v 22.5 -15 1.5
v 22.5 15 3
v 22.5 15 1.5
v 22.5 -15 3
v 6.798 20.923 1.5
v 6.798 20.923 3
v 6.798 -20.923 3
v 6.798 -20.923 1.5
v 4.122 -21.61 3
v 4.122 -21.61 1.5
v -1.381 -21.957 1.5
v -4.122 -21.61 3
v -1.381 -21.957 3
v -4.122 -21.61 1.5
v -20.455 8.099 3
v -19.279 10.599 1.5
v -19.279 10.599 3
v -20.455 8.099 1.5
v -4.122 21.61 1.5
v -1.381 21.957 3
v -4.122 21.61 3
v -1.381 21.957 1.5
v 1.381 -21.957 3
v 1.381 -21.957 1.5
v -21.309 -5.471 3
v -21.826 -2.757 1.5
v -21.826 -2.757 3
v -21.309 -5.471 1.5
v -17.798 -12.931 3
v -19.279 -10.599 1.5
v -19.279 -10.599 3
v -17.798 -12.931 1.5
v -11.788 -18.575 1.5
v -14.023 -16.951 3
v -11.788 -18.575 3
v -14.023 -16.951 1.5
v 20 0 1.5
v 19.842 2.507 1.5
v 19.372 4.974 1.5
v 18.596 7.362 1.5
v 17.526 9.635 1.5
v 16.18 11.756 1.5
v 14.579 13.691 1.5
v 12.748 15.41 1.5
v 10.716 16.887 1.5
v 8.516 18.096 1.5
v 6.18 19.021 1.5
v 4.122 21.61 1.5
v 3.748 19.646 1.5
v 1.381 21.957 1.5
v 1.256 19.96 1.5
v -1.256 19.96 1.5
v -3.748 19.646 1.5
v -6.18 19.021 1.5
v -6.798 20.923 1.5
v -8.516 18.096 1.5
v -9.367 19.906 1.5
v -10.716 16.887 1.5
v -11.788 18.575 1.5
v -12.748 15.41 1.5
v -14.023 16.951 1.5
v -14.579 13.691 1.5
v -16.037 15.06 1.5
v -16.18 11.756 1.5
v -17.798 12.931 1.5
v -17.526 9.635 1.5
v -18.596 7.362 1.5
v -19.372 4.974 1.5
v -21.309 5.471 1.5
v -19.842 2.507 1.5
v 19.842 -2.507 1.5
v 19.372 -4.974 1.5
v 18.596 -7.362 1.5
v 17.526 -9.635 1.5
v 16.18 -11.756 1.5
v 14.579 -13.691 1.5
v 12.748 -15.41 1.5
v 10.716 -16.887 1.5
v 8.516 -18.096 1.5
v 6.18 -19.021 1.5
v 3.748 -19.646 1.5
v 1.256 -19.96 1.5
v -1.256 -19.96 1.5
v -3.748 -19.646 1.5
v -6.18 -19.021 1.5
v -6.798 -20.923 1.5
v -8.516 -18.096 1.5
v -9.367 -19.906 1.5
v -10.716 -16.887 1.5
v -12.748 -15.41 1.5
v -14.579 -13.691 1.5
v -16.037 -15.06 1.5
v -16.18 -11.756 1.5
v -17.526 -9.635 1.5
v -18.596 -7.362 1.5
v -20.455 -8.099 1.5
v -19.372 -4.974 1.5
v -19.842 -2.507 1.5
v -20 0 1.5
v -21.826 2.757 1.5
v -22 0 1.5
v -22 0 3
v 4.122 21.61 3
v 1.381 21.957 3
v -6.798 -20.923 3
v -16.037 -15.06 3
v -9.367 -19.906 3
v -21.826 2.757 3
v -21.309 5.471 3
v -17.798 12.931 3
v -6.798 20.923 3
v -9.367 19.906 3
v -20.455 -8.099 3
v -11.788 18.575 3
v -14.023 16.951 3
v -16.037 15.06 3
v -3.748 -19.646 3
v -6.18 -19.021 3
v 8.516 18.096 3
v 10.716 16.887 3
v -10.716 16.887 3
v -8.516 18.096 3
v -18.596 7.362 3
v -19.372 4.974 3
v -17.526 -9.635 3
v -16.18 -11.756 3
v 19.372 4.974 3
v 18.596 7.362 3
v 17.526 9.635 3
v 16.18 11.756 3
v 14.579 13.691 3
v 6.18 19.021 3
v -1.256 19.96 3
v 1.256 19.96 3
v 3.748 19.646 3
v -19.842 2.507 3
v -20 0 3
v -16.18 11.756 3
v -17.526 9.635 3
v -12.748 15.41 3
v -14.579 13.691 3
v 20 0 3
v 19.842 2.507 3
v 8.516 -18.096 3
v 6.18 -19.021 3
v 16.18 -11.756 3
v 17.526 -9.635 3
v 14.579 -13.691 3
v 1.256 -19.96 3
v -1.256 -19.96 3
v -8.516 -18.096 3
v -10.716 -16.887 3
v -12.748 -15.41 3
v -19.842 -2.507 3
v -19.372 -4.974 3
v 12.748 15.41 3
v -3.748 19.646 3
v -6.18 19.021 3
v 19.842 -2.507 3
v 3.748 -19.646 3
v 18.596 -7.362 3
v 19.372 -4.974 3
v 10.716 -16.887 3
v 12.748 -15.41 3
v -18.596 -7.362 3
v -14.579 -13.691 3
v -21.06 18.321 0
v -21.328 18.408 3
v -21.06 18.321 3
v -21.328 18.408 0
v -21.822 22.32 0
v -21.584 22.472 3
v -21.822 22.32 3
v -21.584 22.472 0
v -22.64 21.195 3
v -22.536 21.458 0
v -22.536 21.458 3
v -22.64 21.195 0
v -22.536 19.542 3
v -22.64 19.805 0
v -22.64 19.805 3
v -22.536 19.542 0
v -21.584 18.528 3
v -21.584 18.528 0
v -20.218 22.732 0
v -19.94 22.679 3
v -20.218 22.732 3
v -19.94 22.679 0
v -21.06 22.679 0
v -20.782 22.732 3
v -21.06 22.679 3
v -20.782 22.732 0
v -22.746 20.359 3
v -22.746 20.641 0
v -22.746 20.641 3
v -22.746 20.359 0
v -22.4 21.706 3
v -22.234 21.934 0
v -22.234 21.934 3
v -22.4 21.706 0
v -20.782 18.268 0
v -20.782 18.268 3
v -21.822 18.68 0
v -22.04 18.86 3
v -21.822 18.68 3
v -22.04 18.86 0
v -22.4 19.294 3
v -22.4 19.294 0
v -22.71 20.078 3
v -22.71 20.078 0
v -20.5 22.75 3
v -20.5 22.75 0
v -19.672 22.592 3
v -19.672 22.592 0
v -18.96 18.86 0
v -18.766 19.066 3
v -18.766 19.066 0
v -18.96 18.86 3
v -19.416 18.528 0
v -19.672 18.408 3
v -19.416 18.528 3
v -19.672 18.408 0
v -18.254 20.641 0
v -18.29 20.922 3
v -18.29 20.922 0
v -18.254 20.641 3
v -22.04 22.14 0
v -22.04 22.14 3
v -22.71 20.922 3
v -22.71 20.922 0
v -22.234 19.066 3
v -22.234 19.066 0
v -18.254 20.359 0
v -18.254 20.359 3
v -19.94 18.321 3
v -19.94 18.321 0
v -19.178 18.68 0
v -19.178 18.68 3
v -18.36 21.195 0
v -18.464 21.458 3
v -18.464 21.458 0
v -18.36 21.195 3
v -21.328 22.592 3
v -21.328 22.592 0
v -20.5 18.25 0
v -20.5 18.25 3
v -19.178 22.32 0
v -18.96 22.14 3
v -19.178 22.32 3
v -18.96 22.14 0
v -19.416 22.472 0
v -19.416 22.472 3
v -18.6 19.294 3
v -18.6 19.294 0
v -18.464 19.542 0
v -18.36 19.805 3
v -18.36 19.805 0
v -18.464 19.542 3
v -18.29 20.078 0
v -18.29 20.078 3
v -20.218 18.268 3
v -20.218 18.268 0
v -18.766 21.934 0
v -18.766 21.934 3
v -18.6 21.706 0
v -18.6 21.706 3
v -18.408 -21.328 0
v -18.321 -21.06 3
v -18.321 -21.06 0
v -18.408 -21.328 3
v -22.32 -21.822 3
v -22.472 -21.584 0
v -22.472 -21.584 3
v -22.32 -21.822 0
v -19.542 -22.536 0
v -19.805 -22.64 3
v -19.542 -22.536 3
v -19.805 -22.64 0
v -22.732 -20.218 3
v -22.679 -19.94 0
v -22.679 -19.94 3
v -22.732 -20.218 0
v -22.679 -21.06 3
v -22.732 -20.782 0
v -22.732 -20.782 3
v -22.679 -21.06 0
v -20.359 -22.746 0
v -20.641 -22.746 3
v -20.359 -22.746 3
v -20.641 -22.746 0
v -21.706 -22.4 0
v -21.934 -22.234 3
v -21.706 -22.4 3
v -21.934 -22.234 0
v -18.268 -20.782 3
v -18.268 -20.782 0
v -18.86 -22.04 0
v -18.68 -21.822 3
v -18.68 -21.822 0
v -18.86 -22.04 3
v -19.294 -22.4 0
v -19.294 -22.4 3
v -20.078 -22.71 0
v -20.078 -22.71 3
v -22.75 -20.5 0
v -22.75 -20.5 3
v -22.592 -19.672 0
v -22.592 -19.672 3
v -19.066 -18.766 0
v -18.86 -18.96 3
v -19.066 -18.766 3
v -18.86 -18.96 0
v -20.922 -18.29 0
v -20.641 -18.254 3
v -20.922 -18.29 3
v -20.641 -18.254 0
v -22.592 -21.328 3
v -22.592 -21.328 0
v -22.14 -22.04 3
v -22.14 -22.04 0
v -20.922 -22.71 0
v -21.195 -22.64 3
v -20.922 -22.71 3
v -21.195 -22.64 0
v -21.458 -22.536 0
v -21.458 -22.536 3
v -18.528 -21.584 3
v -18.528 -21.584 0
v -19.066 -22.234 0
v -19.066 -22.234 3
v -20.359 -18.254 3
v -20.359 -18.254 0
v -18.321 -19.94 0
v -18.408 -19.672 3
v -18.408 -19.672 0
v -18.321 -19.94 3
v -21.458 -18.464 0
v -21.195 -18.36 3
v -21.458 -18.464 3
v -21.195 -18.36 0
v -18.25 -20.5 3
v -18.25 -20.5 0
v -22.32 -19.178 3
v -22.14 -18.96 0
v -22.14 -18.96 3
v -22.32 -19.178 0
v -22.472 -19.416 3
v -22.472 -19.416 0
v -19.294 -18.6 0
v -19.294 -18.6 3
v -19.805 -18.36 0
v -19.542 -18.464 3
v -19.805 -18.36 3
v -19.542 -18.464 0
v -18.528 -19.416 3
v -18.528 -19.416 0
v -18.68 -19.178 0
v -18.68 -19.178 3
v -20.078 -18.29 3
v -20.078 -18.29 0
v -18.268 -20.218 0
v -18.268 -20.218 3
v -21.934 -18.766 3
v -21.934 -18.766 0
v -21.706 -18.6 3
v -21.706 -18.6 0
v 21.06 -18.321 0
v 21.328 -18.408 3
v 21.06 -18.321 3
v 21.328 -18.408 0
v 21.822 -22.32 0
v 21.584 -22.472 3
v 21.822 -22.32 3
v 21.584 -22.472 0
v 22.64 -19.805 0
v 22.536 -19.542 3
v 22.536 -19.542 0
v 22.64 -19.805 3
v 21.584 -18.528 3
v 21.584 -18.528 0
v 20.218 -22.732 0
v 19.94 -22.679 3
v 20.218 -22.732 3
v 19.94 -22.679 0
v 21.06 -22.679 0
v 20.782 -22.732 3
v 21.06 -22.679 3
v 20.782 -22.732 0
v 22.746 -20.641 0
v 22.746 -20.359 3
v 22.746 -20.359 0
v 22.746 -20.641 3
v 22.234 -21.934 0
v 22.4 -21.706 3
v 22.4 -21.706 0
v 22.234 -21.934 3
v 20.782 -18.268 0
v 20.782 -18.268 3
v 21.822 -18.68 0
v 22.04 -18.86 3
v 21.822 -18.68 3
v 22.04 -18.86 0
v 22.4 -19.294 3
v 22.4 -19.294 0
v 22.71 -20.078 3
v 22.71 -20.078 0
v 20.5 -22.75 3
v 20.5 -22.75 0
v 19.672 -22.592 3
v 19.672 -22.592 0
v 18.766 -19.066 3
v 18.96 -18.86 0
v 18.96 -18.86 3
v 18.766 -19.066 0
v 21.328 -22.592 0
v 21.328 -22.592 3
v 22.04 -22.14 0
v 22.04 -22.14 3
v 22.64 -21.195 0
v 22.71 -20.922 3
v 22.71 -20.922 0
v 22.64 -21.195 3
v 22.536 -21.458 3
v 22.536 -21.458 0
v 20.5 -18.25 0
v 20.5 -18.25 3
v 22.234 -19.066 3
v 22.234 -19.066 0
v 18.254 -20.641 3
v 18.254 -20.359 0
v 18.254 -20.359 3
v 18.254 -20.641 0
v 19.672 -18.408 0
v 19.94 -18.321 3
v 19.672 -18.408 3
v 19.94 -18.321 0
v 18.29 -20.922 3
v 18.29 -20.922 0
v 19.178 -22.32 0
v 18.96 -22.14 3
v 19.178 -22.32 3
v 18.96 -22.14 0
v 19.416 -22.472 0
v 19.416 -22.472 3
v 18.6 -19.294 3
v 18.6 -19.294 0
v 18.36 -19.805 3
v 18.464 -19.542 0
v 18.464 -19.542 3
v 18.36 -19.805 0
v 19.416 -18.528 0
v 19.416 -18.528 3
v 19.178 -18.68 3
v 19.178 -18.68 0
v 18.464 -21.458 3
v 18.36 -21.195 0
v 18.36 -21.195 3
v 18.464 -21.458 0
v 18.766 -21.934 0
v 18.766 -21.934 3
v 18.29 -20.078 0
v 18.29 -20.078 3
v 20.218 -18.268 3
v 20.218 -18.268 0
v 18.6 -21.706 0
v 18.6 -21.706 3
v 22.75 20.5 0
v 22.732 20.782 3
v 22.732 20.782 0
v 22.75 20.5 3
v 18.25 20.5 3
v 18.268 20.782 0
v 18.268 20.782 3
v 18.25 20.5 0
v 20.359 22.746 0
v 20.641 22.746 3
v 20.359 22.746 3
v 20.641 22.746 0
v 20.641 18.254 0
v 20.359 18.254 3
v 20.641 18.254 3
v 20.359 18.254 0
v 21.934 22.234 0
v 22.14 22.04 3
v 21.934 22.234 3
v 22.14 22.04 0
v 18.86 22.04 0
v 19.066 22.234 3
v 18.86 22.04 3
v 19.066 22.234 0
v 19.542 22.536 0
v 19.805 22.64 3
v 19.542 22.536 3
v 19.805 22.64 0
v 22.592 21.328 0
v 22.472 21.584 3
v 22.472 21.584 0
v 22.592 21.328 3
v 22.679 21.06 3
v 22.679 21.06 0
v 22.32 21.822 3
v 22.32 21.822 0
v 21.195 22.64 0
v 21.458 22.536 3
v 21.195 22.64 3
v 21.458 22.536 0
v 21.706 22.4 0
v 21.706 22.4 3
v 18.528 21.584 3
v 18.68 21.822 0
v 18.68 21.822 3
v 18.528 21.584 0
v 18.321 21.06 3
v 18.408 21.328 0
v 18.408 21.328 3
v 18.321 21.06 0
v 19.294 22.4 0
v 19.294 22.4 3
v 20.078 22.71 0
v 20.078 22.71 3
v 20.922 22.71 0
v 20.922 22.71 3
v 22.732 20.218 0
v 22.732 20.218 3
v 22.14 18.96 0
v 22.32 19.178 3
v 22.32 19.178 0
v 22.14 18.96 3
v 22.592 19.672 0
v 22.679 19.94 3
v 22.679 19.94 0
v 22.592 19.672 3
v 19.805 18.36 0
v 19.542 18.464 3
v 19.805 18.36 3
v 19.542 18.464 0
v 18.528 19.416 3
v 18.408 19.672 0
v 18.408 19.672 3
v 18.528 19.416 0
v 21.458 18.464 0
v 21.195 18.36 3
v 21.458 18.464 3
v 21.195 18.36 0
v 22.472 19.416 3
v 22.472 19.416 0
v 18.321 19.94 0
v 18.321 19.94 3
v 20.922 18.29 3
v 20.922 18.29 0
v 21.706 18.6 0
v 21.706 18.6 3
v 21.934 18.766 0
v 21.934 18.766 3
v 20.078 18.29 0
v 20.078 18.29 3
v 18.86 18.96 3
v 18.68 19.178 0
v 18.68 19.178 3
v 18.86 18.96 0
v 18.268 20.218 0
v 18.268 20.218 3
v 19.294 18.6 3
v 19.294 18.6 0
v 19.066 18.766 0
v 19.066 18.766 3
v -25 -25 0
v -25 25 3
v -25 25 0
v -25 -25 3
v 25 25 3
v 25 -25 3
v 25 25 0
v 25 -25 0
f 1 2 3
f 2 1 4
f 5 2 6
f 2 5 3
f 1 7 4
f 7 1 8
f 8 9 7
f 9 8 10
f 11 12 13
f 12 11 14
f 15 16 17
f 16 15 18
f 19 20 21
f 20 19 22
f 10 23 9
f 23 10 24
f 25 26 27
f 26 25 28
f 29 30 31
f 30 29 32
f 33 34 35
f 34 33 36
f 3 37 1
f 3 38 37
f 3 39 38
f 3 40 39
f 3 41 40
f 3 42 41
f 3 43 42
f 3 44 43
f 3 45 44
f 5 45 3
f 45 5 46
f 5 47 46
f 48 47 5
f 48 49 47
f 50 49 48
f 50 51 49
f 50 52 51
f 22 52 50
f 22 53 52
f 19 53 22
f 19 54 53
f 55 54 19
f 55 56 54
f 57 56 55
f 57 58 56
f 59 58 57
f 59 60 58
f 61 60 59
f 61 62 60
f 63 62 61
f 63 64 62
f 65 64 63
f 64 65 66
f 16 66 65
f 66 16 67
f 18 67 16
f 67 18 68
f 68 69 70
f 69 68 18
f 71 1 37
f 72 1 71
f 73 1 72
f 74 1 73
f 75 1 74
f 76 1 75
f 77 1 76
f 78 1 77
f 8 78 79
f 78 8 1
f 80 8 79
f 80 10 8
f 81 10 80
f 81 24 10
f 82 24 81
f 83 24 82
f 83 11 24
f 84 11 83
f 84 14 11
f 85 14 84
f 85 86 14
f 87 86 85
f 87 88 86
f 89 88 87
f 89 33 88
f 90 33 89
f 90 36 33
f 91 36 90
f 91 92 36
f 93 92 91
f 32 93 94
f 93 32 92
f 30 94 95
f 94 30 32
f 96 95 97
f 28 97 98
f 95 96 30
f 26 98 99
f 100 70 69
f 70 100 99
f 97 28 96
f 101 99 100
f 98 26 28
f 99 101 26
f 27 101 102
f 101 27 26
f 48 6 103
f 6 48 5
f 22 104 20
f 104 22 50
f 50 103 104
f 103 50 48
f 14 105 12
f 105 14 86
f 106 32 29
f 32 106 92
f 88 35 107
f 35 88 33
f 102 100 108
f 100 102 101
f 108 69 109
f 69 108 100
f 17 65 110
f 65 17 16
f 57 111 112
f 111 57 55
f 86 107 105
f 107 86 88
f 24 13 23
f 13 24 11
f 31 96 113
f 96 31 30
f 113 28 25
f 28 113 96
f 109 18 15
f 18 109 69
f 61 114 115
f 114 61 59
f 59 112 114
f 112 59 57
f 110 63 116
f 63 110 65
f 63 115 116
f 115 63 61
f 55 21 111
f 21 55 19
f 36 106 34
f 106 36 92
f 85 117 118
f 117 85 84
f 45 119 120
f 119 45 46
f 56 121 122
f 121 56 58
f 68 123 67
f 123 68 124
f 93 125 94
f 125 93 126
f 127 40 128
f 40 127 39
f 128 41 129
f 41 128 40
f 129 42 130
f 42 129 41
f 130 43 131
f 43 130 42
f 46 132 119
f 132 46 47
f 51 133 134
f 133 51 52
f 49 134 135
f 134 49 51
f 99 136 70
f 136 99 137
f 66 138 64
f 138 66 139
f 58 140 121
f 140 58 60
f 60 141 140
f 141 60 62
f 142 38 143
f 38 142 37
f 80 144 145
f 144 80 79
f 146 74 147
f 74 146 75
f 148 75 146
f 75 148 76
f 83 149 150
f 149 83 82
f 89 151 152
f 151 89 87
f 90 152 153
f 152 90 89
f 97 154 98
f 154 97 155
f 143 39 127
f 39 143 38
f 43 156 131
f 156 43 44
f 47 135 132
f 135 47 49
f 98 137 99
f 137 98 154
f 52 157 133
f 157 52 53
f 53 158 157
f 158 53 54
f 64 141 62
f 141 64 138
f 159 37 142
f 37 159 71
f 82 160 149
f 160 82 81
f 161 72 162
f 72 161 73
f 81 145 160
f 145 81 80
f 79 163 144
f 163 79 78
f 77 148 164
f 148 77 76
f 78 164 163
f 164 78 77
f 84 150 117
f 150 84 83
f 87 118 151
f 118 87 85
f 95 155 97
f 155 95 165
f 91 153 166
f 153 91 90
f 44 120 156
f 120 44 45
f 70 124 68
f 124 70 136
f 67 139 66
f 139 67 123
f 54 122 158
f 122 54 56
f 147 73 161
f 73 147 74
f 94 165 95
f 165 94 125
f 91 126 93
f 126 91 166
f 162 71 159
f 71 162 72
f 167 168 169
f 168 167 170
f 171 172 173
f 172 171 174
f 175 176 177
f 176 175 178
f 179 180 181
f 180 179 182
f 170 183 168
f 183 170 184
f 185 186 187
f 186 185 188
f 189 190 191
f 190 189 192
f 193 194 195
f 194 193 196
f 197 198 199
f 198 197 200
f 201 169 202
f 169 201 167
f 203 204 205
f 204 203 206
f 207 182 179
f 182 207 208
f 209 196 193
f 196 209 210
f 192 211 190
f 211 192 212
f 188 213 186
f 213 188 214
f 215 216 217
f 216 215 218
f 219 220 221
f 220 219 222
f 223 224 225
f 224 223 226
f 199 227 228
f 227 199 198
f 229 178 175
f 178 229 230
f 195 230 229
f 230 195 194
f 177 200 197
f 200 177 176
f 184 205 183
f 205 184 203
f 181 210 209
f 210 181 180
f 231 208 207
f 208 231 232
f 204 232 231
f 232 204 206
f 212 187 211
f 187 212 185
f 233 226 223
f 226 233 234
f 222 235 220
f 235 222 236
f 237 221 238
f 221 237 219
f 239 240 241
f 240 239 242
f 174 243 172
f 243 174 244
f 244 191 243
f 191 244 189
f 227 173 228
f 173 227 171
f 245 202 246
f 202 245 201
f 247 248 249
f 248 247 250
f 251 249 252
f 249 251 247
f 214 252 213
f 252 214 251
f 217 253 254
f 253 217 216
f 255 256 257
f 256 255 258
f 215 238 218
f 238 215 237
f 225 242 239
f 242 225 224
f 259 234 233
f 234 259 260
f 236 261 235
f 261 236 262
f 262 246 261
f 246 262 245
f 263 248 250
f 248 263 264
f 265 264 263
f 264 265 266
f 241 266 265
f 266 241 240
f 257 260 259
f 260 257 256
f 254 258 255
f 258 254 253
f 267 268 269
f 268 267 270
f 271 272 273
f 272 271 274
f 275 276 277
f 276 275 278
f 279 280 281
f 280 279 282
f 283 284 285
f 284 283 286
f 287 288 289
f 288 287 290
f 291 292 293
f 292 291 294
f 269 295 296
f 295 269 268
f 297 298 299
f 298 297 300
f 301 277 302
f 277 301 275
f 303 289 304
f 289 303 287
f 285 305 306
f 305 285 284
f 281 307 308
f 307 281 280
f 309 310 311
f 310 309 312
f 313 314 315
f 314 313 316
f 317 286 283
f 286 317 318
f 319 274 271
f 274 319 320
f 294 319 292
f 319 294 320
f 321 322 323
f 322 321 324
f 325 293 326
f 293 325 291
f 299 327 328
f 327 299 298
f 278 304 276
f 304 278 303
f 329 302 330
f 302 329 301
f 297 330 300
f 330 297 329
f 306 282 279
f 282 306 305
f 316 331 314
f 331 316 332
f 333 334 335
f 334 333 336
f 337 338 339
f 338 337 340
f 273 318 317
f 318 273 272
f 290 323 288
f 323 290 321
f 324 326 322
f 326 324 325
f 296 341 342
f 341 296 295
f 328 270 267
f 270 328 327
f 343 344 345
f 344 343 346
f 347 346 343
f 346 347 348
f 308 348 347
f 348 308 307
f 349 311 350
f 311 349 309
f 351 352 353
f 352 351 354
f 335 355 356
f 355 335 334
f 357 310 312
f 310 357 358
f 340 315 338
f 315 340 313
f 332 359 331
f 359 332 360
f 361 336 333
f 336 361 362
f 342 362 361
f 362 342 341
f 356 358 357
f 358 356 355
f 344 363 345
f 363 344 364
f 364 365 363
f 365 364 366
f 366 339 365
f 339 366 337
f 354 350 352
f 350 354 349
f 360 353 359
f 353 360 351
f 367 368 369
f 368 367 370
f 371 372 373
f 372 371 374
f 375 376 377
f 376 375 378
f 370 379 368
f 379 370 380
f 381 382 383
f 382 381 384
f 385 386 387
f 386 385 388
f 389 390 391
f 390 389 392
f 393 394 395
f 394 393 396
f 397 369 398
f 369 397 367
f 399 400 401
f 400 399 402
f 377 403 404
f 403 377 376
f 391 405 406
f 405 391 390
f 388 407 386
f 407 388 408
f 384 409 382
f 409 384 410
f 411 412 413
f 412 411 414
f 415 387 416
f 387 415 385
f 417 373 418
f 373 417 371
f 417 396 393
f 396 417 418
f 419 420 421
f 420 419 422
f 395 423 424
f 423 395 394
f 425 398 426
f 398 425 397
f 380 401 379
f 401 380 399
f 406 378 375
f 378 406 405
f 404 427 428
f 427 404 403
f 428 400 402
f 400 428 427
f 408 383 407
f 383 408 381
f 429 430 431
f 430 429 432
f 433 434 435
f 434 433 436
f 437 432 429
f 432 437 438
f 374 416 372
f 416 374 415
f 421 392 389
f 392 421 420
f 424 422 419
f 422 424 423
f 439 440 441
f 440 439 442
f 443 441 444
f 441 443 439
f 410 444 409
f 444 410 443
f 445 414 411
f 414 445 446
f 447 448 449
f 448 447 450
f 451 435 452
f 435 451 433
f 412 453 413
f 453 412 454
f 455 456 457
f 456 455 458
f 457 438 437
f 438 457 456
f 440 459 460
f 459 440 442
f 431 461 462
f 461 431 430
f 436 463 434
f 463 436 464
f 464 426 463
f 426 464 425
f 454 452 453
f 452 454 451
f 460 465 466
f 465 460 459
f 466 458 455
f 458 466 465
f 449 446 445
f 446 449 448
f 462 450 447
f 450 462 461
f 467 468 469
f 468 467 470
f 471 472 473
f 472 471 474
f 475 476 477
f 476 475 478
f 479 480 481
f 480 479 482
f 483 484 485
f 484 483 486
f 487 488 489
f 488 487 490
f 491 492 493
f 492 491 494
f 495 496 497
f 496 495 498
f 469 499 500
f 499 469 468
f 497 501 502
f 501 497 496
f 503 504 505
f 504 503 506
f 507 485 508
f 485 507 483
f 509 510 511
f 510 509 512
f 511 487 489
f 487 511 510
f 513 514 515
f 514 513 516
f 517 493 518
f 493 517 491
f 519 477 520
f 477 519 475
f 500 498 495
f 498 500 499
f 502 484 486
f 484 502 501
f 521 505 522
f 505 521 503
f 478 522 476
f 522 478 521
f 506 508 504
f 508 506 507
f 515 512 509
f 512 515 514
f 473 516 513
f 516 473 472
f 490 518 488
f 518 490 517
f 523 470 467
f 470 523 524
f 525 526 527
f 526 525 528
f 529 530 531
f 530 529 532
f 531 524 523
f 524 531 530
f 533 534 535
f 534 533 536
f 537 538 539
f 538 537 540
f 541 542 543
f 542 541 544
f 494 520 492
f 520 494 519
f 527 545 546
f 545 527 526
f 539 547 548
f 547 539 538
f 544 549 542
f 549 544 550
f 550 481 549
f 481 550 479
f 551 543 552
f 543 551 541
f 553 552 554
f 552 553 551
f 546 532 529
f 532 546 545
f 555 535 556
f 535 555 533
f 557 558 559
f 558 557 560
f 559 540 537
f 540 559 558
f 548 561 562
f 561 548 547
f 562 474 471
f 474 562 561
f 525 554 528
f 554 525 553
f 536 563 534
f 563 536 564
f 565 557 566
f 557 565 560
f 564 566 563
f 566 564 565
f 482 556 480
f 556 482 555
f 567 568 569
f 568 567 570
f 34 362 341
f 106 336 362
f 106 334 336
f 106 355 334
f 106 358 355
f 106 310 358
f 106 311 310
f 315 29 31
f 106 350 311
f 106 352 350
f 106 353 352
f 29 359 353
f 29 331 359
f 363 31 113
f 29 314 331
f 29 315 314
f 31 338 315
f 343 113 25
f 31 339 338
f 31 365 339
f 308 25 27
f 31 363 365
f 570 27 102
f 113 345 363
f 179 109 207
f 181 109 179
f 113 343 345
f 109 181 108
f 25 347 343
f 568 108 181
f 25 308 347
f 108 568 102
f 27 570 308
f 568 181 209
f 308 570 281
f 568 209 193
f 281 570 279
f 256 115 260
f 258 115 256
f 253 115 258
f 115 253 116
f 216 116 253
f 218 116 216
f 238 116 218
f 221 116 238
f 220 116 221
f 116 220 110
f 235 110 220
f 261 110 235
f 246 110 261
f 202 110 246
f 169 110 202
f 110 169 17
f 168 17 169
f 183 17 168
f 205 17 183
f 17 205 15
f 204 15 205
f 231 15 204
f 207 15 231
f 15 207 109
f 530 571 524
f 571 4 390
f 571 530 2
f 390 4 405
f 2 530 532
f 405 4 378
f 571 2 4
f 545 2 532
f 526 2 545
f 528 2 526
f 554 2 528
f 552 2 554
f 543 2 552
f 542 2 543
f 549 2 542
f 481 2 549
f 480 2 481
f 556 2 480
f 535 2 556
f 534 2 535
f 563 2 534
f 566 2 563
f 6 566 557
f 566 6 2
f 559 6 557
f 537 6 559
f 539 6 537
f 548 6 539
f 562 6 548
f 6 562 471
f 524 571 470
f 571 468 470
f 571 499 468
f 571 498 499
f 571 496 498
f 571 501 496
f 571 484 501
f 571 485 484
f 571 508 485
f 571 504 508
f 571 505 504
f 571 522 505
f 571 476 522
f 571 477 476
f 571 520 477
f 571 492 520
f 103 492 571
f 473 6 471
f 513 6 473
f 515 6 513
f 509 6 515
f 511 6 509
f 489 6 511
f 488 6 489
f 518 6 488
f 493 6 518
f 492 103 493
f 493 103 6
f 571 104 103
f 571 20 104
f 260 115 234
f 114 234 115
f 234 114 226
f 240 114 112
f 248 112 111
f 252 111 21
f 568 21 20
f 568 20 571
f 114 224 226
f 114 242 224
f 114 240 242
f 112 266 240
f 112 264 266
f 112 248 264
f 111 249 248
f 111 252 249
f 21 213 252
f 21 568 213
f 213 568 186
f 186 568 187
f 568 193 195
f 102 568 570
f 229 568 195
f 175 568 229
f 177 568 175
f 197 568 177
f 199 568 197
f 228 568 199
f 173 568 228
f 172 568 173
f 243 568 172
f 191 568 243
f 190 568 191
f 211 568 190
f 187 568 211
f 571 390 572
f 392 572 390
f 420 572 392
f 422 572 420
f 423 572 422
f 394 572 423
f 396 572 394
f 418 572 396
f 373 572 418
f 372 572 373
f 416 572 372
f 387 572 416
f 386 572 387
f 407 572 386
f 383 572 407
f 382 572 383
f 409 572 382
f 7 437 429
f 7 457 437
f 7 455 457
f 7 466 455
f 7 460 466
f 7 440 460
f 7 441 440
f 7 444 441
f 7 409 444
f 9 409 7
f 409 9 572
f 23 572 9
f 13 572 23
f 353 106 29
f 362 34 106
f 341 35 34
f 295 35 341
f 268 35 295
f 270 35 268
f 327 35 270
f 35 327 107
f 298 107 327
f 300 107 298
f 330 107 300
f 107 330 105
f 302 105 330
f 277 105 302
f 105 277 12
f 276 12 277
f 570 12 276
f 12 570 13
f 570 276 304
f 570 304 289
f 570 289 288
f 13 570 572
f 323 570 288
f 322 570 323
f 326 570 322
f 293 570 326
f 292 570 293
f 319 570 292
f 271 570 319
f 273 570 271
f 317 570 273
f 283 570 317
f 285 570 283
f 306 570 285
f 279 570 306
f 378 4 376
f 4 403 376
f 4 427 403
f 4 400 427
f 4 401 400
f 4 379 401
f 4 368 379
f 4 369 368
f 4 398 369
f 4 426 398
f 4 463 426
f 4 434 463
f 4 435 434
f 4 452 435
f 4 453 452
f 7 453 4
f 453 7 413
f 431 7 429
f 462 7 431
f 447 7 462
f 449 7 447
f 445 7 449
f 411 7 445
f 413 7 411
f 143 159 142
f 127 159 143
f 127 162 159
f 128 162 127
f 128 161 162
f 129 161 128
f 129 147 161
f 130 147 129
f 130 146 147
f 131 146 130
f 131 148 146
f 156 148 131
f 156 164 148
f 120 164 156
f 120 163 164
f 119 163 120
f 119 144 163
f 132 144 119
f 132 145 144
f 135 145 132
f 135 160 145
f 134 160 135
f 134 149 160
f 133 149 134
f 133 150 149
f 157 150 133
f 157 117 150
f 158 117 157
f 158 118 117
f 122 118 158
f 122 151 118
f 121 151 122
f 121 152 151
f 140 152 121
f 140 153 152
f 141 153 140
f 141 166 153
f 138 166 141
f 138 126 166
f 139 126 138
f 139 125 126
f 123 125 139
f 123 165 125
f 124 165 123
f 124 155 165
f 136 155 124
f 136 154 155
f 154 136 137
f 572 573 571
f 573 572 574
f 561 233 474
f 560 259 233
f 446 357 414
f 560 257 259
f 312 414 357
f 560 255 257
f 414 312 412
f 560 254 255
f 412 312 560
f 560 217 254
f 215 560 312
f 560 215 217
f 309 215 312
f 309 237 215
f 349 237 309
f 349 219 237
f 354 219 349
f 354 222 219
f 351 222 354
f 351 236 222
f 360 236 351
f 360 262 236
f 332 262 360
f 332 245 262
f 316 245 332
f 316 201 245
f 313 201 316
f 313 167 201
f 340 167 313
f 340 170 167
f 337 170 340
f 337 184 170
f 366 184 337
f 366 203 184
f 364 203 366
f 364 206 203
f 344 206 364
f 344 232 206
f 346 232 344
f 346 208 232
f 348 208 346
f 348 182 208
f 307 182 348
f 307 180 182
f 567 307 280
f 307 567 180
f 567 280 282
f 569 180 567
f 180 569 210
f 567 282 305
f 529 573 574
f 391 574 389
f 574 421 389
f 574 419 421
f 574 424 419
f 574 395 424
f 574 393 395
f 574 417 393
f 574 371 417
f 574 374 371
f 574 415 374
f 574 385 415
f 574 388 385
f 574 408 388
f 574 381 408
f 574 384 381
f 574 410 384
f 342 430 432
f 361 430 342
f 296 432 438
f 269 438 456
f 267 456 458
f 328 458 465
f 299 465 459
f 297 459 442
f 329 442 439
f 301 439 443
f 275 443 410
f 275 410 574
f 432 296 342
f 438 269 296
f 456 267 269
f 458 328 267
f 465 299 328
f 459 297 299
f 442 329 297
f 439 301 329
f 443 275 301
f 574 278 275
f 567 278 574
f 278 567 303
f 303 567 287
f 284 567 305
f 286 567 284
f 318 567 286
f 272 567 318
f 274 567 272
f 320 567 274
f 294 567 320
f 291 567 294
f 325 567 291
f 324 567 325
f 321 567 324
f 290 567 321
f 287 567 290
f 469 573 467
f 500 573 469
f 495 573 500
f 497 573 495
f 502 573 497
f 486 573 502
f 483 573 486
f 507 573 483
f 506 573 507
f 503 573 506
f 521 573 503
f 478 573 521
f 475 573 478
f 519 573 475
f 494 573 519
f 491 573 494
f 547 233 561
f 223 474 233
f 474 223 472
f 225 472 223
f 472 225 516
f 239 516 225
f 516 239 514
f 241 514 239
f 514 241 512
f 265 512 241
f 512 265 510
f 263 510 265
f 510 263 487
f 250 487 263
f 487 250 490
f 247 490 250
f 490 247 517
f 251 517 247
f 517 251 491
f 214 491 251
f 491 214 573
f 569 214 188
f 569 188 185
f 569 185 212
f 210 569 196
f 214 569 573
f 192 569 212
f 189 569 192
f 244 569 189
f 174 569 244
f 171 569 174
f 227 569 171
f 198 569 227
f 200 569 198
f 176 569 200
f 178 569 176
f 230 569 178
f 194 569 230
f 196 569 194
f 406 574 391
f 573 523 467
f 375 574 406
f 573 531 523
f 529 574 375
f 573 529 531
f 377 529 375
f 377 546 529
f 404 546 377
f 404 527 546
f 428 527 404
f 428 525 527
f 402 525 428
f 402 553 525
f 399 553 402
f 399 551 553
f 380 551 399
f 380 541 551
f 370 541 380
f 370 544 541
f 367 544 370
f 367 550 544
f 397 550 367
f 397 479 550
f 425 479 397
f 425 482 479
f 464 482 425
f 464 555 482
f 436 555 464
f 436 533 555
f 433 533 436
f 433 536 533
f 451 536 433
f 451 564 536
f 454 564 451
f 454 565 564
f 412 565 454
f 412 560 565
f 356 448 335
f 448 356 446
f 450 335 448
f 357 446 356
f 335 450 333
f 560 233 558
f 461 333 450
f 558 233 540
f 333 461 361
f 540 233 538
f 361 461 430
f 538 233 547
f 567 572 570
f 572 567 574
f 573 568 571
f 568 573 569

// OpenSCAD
module bolt(diameter, height)
{
    cylinder(r = diameter / 2, h = height);
}

module radial_bolts(width, height, bolt_count, bolt_diameter)
{
    for (i = [1:bolt_count])
    {
        rotate((i*360) / bolt_count)
        {
            translate([width /2 - bolt_diameter, width / 2 - bolt_diameter , -0.01])
            {
                bolt(bolt_diameter, height + 0.02);
            }
        }
    }    
}


module plate(width, height)
{    
    difference()
    {
        translate([-width / 2, -width / 2, 0])
        {
            cube([width, width, height]);
        }

        translate([0, 0, height / 2])
        {
          difference()
            {
                hull()
                {
                    cylinder(h = height, r = width * 0.44);

                    translate([-width * 0.15, -width * 0.3, 0])
                    {
                        cube([width * 0.6, width * 0.6, height * 2]);
                    }
               }
                
                cylinder(h = height, r = width * 0.40);
            }
        }
       
        radial_bolts(width, height, 4, 4.5);
    }
}

// Example usage
plate(width = 50, height = 3);

$fn = 50;
